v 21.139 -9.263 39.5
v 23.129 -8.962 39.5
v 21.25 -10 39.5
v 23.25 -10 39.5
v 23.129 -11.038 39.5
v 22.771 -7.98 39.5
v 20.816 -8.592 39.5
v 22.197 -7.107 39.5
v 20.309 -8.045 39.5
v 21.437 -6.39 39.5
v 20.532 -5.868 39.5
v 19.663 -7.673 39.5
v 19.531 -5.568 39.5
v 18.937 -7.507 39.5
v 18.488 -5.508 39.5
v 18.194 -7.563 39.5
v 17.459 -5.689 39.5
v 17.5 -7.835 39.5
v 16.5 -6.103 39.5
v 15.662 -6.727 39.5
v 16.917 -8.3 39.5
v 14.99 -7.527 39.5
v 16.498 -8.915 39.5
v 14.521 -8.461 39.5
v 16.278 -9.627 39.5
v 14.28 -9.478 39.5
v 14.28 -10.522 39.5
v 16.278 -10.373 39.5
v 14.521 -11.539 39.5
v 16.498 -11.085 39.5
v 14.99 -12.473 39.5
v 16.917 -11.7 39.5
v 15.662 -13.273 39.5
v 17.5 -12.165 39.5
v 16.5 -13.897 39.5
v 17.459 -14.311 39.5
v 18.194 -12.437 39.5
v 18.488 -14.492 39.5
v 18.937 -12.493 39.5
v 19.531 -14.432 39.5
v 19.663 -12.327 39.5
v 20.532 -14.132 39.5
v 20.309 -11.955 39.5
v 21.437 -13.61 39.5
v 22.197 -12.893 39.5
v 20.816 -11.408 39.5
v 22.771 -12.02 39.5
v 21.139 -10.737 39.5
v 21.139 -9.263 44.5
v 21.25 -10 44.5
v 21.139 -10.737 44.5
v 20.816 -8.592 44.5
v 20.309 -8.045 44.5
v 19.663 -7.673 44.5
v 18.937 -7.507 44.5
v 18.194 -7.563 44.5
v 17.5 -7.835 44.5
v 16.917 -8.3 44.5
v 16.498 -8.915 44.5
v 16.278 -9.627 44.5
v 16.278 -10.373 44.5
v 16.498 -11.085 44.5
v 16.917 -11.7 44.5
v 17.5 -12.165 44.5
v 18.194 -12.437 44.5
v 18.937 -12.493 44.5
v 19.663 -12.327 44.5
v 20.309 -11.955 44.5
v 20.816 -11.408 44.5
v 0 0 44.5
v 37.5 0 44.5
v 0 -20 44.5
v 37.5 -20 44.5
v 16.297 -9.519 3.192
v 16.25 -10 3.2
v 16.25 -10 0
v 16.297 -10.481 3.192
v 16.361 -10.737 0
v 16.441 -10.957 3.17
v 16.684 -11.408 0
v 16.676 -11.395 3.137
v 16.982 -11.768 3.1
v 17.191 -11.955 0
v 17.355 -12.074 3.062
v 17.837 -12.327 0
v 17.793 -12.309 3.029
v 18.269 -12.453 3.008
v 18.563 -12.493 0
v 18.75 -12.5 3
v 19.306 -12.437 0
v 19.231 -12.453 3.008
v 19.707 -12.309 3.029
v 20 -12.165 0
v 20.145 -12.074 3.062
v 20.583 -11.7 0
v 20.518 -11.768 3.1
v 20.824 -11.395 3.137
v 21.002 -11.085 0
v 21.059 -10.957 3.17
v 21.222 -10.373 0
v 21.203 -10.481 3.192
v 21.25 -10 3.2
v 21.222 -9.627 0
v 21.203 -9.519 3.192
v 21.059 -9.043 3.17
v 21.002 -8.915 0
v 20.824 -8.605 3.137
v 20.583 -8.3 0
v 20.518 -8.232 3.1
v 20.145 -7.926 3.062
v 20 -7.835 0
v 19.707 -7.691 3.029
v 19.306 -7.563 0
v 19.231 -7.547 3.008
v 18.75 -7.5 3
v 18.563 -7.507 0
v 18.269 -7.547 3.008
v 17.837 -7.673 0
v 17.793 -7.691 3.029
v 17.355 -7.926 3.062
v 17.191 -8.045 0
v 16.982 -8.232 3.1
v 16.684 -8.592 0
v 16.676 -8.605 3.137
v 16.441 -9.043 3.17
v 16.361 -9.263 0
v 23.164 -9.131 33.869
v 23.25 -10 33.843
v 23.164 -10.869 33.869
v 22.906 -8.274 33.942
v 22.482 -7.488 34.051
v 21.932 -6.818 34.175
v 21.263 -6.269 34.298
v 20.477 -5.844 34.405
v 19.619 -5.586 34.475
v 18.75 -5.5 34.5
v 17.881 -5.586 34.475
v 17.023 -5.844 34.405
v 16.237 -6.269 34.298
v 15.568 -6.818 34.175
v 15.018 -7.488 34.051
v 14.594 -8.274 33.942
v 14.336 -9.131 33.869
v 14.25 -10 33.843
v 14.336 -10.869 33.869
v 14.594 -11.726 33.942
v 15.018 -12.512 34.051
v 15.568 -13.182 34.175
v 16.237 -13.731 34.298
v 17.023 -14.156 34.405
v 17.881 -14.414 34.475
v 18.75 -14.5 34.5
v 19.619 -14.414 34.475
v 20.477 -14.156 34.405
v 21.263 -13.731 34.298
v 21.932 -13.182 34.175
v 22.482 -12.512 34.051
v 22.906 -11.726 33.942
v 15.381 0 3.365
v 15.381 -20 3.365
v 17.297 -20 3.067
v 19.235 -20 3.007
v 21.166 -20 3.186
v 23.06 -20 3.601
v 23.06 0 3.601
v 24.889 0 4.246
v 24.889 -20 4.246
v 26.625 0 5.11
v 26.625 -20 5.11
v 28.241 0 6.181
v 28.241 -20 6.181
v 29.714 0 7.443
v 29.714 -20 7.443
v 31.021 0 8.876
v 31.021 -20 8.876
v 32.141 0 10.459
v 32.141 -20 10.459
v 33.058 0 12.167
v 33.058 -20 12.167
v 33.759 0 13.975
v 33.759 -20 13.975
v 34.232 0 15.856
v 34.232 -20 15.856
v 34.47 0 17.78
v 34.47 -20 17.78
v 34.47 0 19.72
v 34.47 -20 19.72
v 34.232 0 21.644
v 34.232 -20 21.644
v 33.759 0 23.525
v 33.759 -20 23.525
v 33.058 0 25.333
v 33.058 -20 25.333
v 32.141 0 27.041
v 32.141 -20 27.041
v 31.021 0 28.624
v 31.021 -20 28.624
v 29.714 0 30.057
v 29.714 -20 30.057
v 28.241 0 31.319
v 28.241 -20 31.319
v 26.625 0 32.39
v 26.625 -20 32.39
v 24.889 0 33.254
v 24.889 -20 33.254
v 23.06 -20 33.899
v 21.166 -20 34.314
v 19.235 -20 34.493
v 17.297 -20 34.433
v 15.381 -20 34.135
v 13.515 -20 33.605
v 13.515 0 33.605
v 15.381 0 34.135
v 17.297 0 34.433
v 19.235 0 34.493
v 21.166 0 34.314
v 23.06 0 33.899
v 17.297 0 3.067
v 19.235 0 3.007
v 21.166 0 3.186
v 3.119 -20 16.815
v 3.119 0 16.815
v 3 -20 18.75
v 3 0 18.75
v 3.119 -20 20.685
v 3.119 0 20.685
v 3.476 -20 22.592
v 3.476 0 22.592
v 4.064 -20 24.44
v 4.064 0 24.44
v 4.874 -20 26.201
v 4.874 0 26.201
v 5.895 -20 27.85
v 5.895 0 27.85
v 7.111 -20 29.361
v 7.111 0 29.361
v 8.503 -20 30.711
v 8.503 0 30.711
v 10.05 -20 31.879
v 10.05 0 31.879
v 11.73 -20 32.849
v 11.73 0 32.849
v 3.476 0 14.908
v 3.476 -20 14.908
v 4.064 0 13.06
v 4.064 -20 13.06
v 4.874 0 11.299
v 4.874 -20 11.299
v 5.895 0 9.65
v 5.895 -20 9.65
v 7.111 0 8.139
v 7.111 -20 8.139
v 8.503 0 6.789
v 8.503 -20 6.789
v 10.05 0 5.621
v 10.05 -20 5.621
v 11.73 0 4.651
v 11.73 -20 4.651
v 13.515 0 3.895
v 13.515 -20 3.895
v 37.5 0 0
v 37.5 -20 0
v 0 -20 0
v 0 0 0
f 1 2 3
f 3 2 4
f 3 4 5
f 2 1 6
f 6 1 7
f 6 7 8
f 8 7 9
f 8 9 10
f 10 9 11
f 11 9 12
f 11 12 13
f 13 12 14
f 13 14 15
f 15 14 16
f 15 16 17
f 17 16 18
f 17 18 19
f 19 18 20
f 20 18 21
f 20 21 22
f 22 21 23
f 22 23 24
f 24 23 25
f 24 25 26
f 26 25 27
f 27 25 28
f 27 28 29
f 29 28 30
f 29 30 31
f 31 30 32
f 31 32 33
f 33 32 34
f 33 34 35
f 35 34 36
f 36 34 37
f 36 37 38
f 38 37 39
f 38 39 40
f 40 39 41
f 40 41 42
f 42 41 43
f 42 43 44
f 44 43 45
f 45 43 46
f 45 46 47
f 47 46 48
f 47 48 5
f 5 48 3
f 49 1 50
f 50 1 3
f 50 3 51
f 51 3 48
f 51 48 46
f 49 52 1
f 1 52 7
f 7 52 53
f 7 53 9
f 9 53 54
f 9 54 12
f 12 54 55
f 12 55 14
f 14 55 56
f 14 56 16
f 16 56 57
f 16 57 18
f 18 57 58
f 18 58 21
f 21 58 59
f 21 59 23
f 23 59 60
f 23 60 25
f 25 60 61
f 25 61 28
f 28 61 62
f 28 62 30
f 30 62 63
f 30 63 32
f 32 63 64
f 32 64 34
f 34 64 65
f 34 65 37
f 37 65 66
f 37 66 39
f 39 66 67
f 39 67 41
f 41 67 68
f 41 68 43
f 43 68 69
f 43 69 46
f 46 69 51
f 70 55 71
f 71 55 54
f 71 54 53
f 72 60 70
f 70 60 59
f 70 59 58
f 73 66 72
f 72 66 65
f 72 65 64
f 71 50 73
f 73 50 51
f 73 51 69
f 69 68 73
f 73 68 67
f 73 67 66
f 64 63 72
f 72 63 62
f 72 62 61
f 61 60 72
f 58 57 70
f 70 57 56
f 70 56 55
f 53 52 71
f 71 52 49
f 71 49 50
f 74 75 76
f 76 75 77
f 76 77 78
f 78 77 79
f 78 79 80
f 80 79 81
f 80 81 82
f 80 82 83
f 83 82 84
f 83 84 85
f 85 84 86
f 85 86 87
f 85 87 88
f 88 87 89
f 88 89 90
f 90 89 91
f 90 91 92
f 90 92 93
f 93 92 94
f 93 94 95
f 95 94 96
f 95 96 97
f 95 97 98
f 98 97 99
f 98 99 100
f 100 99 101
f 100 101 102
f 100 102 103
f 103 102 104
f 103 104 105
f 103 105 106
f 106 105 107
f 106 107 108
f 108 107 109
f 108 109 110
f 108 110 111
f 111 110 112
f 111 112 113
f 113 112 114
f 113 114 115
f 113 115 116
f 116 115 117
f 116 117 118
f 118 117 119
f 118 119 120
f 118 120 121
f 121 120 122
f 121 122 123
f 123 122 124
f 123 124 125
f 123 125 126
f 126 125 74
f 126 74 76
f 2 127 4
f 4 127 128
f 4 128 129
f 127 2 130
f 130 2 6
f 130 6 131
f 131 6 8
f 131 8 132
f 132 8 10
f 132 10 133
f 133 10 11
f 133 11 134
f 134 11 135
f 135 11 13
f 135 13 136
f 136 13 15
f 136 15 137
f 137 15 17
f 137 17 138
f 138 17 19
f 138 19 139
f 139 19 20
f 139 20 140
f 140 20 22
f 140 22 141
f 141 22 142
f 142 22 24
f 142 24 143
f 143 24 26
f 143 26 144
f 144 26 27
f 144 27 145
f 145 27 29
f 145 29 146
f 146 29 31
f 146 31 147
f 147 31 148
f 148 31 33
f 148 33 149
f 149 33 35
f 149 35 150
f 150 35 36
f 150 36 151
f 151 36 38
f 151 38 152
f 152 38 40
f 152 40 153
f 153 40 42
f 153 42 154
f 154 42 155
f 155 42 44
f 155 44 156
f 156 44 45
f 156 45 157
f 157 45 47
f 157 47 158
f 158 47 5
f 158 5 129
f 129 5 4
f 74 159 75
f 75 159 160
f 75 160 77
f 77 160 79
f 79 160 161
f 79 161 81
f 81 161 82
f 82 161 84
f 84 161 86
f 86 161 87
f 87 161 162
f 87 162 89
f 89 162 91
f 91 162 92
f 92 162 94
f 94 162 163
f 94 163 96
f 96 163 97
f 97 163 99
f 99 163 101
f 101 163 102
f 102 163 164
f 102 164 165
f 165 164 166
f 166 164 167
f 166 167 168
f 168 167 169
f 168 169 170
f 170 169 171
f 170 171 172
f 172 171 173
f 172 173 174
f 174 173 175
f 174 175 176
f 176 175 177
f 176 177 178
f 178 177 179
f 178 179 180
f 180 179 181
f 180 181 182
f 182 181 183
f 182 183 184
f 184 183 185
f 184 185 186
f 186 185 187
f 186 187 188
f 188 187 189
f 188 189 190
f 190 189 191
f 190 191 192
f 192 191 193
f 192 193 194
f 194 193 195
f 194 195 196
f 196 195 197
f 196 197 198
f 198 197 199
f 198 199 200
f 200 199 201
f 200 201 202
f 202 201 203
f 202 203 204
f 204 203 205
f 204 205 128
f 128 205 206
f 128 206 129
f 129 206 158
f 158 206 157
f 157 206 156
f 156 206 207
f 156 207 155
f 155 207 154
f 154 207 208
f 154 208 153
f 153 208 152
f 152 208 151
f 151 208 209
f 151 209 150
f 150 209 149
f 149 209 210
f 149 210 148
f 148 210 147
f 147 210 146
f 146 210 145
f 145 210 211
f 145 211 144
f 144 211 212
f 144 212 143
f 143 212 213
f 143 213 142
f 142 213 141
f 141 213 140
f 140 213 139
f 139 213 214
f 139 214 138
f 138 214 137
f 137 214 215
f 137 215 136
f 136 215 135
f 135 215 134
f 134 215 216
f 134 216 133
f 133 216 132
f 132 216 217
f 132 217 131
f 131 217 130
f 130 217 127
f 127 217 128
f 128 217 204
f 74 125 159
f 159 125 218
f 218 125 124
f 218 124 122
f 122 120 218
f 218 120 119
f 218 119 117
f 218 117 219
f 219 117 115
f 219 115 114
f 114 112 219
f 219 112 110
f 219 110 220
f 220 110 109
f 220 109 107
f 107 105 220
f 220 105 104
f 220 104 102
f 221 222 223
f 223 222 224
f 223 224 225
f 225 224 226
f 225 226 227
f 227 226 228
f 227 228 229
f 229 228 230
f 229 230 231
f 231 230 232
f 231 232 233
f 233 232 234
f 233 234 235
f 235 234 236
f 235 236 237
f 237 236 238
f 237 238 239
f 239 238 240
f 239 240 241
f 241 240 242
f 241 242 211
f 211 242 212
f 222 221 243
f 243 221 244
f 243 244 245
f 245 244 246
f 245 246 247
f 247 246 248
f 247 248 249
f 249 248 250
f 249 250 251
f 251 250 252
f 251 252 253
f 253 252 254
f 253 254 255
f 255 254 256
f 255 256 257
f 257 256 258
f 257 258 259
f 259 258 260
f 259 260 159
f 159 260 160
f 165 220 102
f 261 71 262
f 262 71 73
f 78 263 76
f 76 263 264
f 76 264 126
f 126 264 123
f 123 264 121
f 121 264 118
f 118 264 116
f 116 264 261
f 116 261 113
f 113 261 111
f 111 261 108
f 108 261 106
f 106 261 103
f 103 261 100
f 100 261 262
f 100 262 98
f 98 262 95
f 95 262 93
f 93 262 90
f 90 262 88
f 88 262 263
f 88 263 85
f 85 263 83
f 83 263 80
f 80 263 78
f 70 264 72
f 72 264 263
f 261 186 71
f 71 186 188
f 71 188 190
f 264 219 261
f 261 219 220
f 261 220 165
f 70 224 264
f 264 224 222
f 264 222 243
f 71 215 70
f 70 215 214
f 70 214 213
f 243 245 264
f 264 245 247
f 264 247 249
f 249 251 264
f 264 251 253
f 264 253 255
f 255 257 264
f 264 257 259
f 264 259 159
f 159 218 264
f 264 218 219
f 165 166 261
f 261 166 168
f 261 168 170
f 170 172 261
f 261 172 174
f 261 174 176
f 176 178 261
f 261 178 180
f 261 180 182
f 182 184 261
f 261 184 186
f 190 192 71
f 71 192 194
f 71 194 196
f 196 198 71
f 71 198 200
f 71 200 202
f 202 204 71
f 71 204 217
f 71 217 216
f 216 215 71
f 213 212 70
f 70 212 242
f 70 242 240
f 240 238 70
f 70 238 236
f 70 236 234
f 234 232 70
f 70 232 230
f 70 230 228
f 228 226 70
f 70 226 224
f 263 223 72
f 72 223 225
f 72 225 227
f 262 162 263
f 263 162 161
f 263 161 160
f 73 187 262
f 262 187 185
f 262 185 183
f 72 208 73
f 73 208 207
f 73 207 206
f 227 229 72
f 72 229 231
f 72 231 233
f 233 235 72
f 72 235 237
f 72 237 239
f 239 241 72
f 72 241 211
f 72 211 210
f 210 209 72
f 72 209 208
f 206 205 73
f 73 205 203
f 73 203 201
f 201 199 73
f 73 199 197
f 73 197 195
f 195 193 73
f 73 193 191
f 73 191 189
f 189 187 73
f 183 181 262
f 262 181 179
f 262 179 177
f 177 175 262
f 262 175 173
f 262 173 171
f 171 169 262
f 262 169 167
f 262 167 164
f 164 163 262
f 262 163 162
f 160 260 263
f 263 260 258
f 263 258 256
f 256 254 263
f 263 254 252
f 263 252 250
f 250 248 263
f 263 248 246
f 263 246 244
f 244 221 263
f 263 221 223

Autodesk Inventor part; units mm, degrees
ref_plane "YZ Plane" through (0, 0, 0) normal (1, 0, 0) x (0, 1, 0)
ref_plane "XZ Plane" through (0, 0, 0) normal (0, 1, 0) x (-1, 0, 0)
ref_plane "XY Plane" through (0, 0, 0) normal (0, 0, 1) x (1, 0, 0)
sketch "Sketch1" plane through (0, 0, 0) normal (0, 1, 0) x (-1, 0, 0)
  line L0 (0, 0) -> (-37.5, 0)
  line L1 (-37.5, 0) -> (-37.5, 37.5)
  line L2 (-37.5, 37.5) -> (0, 37.5)
  line L3 (0, 37.5) -> (0, 0)
  circle A0 centre (-18.75, 18.75) radius 15.75
  point P0 (-18.75, 0)
  dimension "d0" = 37.5
  dimension "d1" = 37.5
  dimension "d2" = 18.75
  dimension "d3" = 18.75
  dimension "d4" = 31.5
extrude "Extrusion1" add sketch "Sketch1" against normal blind 20
sketch "Sketch3" plane through (0, 0, 37.5) normal (0, 0, 1) x (1, 0, 0)
  circle A0 centre (18.75, -10) radius 4.5
  line L0 (37.5, 0) -> (37.5, -20) projected
  point P0 (0, 0)
  point P1 (37.5, -10)
  dimension "d8" = 9
  dimension "d19" = 18.75
extrude "Extrusion2" cut sketch "Sketch3" against normal blind 5
sketch "Sketch4" plane through (37.5, 0, 0) normal (0, 0, -1) x (-1, 0, 0)
  circle A0 centre (18.75, -10) radius 4.5 projected
  circle A1 centre (18.75, -10) radius 2.5
  point P0 (37.5, 0)
  dimension "d11" = 5
extrude "Extrusion3" cut sketch "Sketch4" against normal blind 5 contours A1
sketch "Sketch5" plane through (0, 0, 37.5) normal (0, 0, 1) x (1, 0, 0)
  line L0 (37.5, 0) -> (0, 0) projected
  line L1 (0, -20) -> (37.5, -20) projected
  line L2 (0, 0) -> (37.5, 0)
  line L3 (37.5, 0) -> (37.5, -20)
  line L4 (37.5, -20) -> (0, -20)
  line L5 (0, -20) -> (0, 0)
  line L6 (0, 0) -> (0, -20) projected
  line L7 (0, 0) -> (37.5, 0)
  line L8 (37.5, 0) -> (37.5, -20)
  line L9 (37.5, -20) -> (0, -20)
  line L10 (0, -20) -> (0, 0)
  circle A0 centre (18.75, -10) radius 4.5
  point P0 (37.5, -10)
  dimension "d18" = 18.75
extrude "Extrusion4" add sketch "Sketch5" along normal blind 2
sketch "Sketch6" plane through (0, 0, 39.5) normal (0, 0, 1) x (1, 0, 0)
  line L0 (0, 0) -> (0, -20) projected
  line L1 (0, -20) -> (37.5, -20) projected
  line L2 (0, 0) -> (37.5, 0)
  line L3 (37.5, 0) -> (37.5, -20)
  line L4 (37.5, -20) -> (0, -20)
  line L5 (0, -20) -> (0, 0)
  circle A0 centre (18.75, -10) radius 2.5
  dimension "d20" = 18.75
extrude "Extrusion5" add sketch "Sketch6" along normal blind 5
equation "\"d0\" = d1"
equation "\"d2\" = 0.5 * d1"
equation "\"d3\" = 0.5 * d0"
properties part number "welco mount v04"
